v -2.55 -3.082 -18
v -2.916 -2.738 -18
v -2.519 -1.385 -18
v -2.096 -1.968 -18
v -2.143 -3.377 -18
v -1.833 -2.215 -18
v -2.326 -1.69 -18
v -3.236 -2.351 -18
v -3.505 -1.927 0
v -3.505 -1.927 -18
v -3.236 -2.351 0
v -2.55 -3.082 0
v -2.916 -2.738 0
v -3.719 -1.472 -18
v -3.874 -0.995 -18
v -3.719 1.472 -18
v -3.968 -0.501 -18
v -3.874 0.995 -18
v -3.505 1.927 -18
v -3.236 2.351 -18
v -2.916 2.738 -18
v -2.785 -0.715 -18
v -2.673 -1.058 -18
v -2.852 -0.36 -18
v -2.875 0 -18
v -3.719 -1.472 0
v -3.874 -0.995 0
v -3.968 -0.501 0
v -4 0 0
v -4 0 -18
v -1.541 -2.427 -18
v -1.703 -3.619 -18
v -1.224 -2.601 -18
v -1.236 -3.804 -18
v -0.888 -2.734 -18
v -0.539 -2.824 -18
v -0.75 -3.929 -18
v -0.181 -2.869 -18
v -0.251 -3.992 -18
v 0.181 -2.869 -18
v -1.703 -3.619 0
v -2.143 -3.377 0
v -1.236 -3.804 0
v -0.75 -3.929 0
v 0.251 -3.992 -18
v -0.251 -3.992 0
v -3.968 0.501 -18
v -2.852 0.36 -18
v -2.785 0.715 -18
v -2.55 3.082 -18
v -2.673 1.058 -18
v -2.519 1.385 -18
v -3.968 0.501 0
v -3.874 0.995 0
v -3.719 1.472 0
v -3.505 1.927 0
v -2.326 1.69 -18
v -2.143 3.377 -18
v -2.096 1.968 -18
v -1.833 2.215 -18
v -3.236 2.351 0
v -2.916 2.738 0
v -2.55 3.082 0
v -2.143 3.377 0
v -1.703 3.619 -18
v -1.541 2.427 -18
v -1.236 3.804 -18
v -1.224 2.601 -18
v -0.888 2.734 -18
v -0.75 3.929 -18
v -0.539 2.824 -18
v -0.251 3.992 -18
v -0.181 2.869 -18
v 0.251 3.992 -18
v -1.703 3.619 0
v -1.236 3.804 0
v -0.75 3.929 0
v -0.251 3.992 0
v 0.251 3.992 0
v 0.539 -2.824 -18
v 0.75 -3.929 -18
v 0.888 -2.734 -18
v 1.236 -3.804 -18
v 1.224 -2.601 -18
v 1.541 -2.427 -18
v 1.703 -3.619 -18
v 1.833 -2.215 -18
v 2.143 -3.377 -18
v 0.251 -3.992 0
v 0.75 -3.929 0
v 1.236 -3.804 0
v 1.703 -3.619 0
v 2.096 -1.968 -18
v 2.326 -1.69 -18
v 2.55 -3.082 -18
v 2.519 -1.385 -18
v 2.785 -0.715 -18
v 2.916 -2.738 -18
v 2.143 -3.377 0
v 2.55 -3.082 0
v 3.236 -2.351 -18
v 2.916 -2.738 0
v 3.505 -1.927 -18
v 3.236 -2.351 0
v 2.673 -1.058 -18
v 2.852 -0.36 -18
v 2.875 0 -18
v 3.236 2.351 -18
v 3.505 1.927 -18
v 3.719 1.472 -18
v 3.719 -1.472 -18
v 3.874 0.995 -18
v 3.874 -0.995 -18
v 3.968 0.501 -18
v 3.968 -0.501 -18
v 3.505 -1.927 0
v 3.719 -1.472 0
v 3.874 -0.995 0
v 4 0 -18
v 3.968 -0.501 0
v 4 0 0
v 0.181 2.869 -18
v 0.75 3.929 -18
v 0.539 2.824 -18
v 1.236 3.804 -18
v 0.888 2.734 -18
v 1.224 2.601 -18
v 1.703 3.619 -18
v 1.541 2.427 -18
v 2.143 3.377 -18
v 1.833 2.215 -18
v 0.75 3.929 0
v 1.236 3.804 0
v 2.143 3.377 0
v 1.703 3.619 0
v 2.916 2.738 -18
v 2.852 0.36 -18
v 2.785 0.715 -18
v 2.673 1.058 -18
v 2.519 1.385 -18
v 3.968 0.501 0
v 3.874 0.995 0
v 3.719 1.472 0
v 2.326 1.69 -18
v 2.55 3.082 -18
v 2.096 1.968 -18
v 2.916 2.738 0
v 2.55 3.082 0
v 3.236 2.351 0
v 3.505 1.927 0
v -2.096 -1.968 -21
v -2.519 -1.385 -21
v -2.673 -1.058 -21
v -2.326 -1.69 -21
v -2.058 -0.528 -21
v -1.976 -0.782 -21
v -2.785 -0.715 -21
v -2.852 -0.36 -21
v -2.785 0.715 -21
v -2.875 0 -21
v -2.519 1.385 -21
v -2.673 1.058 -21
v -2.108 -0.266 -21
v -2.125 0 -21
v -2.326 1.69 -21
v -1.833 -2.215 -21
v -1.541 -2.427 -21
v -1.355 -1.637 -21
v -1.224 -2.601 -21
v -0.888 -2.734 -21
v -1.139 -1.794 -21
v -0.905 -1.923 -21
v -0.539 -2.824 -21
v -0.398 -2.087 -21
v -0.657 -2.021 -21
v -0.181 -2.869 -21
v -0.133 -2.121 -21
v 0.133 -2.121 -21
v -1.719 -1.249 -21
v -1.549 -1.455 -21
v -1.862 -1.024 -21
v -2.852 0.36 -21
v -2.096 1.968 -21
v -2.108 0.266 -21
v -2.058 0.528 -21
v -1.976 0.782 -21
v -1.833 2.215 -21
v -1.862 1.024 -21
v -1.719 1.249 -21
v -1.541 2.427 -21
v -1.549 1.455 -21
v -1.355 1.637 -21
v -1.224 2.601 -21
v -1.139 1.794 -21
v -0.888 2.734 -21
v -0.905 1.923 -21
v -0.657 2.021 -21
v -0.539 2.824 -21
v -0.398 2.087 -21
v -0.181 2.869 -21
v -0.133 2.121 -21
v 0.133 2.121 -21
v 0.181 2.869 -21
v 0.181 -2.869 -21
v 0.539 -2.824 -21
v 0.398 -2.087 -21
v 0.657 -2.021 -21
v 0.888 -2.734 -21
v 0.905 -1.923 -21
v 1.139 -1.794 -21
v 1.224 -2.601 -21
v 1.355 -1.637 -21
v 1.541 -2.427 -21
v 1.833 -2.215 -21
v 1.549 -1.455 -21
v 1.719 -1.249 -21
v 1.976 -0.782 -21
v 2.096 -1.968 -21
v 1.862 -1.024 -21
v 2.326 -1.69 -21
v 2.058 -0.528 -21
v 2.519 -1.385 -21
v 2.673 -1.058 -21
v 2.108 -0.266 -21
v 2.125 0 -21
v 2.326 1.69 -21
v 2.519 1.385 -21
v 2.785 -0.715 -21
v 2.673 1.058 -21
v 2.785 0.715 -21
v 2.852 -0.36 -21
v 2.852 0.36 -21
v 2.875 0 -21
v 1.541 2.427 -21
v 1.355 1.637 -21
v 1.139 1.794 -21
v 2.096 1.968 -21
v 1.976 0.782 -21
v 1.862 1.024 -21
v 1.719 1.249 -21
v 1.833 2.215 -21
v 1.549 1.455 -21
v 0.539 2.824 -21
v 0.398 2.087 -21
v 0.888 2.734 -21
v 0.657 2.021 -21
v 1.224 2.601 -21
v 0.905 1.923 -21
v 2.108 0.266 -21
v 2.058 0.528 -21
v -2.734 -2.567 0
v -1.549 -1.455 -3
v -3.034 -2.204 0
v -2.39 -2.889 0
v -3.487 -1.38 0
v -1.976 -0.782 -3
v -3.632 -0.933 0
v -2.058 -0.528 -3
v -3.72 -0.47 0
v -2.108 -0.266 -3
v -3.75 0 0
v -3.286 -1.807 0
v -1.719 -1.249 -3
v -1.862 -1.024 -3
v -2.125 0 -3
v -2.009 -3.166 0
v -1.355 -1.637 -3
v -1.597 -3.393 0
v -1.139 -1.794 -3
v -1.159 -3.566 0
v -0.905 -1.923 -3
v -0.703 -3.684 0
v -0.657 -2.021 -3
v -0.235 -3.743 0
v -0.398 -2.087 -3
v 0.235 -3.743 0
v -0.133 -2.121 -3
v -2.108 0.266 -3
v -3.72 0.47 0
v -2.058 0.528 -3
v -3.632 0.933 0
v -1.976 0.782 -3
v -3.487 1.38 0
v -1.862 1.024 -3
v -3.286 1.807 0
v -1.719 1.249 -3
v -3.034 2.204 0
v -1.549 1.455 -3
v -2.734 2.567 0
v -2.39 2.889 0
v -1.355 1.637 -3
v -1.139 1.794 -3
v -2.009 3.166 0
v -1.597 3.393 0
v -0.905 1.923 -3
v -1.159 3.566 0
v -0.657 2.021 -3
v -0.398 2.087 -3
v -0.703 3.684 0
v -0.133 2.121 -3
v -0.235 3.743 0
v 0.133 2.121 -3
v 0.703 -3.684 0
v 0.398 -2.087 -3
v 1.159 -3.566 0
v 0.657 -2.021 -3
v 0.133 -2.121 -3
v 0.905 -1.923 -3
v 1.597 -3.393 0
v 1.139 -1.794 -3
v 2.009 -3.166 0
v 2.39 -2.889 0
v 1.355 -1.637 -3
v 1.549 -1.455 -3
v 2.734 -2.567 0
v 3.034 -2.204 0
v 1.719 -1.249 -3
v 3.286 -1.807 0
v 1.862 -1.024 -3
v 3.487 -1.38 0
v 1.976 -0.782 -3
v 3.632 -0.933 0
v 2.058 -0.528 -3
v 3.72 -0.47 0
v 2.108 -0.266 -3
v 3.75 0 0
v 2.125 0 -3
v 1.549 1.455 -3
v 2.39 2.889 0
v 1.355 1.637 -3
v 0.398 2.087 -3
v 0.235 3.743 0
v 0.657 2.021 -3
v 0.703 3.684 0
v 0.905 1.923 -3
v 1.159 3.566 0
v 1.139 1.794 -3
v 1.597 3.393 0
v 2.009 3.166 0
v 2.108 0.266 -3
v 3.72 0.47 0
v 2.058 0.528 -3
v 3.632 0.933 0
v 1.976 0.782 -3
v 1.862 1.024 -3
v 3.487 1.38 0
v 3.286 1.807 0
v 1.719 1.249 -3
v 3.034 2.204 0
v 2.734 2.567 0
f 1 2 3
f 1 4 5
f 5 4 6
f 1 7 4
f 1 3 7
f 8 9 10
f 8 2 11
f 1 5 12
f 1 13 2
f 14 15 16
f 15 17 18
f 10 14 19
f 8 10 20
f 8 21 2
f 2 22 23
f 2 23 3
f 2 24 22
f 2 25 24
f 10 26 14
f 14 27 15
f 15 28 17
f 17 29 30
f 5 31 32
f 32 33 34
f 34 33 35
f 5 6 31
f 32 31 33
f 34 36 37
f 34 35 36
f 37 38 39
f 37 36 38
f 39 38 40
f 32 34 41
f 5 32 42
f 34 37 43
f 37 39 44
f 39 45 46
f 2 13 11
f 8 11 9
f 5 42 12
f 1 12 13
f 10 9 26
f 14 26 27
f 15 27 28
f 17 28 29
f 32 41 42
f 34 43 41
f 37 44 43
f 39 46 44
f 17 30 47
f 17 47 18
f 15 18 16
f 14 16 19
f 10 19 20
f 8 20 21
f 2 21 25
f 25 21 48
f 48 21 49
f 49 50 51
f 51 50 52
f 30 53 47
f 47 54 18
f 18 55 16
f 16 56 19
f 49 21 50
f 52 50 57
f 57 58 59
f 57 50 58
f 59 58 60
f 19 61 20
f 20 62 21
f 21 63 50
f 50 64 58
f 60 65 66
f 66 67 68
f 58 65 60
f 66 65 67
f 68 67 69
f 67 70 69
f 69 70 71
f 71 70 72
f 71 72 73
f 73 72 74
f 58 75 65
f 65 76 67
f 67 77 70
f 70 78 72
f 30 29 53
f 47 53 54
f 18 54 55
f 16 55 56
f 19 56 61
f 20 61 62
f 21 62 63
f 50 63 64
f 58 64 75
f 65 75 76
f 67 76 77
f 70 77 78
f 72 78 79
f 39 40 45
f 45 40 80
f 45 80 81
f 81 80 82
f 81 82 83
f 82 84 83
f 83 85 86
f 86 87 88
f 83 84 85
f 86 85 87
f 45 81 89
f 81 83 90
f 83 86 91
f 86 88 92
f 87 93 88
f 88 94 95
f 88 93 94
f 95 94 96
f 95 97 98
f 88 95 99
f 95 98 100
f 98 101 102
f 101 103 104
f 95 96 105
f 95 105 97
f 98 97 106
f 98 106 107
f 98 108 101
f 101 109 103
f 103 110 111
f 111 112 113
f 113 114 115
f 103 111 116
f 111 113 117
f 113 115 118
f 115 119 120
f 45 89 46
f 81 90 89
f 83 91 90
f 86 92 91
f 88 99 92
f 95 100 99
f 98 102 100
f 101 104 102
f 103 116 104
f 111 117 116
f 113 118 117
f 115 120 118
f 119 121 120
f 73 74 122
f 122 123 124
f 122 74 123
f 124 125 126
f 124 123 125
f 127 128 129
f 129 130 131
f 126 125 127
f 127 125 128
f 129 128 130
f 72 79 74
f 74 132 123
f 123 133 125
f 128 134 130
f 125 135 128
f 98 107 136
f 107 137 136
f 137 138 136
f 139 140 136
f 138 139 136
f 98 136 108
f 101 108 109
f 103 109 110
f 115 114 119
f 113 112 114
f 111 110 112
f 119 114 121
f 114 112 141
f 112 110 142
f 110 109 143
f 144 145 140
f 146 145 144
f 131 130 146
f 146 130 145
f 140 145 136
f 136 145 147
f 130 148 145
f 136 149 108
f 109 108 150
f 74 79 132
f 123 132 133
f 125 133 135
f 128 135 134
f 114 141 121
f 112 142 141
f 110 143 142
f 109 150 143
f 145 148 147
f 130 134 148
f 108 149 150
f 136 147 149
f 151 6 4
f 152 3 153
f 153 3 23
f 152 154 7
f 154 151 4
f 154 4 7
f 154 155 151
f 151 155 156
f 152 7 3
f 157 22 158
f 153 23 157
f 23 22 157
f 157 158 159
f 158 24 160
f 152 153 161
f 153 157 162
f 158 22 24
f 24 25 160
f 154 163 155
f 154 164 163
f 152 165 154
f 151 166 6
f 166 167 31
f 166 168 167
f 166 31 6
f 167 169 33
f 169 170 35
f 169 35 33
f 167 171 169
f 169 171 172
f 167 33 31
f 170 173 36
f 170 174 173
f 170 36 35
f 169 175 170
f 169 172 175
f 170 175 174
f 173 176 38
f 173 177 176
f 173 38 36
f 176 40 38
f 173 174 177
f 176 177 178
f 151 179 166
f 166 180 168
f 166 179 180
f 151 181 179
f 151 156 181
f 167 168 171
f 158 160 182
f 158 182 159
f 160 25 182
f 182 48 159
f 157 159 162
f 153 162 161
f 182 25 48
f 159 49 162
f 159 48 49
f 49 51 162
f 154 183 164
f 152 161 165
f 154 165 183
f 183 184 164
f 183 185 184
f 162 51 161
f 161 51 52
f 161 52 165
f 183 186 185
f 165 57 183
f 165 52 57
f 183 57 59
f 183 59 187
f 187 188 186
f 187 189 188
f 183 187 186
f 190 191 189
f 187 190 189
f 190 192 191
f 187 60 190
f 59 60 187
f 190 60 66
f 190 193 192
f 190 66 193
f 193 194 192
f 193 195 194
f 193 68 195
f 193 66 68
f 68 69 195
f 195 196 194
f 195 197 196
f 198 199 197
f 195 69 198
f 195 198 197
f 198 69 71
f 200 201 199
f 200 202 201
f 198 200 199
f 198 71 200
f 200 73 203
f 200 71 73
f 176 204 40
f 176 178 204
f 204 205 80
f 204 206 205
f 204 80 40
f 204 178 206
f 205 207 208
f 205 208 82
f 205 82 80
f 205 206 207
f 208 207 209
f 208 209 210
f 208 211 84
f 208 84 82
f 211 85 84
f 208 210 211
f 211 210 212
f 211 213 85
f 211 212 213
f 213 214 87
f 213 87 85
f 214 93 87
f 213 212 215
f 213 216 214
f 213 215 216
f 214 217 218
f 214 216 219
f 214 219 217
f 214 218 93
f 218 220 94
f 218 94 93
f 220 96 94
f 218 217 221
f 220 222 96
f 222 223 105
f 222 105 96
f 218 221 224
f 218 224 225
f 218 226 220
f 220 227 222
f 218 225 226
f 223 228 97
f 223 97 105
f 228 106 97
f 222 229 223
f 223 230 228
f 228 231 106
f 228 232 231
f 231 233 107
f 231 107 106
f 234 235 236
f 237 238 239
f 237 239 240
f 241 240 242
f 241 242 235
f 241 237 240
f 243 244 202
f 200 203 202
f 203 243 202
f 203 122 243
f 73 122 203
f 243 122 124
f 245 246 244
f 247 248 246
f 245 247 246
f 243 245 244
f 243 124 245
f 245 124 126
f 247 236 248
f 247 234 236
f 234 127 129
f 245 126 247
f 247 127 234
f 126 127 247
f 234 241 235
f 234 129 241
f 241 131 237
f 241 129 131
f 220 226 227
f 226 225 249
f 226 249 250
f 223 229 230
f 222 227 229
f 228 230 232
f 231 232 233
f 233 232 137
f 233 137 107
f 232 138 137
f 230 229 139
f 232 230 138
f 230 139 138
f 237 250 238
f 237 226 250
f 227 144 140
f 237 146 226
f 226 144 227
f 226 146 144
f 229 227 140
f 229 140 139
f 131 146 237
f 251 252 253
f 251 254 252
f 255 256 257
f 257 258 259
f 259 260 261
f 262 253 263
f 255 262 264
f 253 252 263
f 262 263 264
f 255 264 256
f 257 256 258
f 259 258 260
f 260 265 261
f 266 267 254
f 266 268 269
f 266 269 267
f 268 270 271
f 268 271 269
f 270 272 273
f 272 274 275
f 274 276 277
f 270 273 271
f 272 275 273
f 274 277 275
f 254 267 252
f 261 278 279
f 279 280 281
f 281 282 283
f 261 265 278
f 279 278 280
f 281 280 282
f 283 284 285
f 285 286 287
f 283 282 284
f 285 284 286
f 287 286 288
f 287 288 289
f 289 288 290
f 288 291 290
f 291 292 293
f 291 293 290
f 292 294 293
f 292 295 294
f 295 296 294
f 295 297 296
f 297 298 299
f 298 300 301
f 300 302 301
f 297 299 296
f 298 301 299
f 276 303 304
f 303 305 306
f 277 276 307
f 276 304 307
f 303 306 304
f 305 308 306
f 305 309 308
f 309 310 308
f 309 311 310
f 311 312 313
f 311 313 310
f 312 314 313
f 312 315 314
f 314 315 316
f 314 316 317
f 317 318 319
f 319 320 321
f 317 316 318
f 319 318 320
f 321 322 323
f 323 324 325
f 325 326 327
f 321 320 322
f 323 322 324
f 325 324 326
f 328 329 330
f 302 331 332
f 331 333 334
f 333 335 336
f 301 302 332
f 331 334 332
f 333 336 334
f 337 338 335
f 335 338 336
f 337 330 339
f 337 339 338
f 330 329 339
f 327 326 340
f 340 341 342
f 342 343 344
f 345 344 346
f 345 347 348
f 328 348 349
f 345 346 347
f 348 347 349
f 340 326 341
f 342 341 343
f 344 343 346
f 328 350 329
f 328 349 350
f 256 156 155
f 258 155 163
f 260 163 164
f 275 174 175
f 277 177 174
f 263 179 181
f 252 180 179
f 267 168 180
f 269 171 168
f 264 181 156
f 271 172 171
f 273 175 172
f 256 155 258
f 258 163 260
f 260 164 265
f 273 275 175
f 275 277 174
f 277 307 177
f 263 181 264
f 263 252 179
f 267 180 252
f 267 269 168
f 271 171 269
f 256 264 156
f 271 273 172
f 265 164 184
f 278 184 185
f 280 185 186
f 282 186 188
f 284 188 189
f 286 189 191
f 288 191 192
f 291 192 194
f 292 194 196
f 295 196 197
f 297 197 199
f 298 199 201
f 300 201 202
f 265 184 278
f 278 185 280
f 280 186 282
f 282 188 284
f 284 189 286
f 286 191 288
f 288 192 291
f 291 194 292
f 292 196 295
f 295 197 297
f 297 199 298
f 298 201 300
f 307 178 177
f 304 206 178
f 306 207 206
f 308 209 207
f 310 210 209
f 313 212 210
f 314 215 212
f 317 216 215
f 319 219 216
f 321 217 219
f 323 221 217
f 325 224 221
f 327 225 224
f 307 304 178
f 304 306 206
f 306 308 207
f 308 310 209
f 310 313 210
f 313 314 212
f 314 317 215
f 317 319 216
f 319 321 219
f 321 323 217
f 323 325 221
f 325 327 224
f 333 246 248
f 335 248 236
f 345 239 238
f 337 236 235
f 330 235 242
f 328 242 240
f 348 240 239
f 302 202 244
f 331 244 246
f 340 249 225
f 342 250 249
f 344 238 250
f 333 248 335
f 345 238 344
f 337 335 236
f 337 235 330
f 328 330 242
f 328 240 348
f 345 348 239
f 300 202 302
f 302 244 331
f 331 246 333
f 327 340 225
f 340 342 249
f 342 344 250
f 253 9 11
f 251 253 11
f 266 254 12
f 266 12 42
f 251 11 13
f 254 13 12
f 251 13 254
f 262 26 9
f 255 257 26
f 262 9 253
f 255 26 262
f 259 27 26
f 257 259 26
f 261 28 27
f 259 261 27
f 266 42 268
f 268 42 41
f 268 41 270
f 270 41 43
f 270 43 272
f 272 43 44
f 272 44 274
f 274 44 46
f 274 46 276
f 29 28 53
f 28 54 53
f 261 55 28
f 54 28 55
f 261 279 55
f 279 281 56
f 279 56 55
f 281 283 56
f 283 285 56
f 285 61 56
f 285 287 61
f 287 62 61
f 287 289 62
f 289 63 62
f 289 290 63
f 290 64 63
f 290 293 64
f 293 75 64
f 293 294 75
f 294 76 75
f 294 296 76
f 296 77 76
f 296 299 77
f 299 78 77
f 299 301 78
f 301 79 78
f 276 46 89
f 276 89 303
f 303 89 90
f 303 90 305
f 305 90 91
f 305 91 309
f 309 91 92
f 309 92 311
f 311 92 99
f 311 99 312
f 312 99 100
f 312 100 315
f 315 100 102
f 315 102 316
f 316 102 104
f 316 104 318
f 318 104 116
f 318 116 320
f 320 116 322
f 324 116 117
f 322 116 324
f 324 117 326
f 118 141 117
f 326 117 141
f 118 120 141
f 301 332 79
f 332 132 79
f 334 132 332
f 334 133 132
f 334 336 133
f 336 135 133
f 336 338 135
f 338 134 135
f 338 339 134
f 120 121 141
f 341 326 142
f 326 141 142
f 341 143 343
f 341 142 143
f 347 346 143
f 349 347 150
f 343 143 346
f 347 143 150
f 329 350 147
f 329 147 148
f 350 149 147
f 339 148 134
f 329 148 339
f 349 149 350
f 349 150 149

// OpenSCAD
$fn = 50;

difference() {
	union() {
		translate(v = [0, 0, -18.0]) {
			cylinder(h = 18, r = 4.0);
		}
		#translate(v = [0, 0, -21.0]) {
			cylinder(h = 21, r = 2.875);
		}
	}
	union() {
		translate(v = [0, 0, 0]) {
			rotate(a = [0, 0, 0]) {
				difference() {
					union() {
						translate(v = [0, 0, -21.0]) {
							cylinder(h = 21, r = 2.0);
						}
						translate(v = [0, 0, -3]) {
							cylinder(h = 3, r1 = 2.125, r2 = 3.75);
						}
						translate(v = [0, 0, -21.0]) {
							cylinder(h = 21, r = 2.125);
						}
						translate(v = [0, 0, -21.0]) {
							cylinder(h = 21, r = 2.0);
						}
					}
					union();
				}
			}
		}
	}
}
